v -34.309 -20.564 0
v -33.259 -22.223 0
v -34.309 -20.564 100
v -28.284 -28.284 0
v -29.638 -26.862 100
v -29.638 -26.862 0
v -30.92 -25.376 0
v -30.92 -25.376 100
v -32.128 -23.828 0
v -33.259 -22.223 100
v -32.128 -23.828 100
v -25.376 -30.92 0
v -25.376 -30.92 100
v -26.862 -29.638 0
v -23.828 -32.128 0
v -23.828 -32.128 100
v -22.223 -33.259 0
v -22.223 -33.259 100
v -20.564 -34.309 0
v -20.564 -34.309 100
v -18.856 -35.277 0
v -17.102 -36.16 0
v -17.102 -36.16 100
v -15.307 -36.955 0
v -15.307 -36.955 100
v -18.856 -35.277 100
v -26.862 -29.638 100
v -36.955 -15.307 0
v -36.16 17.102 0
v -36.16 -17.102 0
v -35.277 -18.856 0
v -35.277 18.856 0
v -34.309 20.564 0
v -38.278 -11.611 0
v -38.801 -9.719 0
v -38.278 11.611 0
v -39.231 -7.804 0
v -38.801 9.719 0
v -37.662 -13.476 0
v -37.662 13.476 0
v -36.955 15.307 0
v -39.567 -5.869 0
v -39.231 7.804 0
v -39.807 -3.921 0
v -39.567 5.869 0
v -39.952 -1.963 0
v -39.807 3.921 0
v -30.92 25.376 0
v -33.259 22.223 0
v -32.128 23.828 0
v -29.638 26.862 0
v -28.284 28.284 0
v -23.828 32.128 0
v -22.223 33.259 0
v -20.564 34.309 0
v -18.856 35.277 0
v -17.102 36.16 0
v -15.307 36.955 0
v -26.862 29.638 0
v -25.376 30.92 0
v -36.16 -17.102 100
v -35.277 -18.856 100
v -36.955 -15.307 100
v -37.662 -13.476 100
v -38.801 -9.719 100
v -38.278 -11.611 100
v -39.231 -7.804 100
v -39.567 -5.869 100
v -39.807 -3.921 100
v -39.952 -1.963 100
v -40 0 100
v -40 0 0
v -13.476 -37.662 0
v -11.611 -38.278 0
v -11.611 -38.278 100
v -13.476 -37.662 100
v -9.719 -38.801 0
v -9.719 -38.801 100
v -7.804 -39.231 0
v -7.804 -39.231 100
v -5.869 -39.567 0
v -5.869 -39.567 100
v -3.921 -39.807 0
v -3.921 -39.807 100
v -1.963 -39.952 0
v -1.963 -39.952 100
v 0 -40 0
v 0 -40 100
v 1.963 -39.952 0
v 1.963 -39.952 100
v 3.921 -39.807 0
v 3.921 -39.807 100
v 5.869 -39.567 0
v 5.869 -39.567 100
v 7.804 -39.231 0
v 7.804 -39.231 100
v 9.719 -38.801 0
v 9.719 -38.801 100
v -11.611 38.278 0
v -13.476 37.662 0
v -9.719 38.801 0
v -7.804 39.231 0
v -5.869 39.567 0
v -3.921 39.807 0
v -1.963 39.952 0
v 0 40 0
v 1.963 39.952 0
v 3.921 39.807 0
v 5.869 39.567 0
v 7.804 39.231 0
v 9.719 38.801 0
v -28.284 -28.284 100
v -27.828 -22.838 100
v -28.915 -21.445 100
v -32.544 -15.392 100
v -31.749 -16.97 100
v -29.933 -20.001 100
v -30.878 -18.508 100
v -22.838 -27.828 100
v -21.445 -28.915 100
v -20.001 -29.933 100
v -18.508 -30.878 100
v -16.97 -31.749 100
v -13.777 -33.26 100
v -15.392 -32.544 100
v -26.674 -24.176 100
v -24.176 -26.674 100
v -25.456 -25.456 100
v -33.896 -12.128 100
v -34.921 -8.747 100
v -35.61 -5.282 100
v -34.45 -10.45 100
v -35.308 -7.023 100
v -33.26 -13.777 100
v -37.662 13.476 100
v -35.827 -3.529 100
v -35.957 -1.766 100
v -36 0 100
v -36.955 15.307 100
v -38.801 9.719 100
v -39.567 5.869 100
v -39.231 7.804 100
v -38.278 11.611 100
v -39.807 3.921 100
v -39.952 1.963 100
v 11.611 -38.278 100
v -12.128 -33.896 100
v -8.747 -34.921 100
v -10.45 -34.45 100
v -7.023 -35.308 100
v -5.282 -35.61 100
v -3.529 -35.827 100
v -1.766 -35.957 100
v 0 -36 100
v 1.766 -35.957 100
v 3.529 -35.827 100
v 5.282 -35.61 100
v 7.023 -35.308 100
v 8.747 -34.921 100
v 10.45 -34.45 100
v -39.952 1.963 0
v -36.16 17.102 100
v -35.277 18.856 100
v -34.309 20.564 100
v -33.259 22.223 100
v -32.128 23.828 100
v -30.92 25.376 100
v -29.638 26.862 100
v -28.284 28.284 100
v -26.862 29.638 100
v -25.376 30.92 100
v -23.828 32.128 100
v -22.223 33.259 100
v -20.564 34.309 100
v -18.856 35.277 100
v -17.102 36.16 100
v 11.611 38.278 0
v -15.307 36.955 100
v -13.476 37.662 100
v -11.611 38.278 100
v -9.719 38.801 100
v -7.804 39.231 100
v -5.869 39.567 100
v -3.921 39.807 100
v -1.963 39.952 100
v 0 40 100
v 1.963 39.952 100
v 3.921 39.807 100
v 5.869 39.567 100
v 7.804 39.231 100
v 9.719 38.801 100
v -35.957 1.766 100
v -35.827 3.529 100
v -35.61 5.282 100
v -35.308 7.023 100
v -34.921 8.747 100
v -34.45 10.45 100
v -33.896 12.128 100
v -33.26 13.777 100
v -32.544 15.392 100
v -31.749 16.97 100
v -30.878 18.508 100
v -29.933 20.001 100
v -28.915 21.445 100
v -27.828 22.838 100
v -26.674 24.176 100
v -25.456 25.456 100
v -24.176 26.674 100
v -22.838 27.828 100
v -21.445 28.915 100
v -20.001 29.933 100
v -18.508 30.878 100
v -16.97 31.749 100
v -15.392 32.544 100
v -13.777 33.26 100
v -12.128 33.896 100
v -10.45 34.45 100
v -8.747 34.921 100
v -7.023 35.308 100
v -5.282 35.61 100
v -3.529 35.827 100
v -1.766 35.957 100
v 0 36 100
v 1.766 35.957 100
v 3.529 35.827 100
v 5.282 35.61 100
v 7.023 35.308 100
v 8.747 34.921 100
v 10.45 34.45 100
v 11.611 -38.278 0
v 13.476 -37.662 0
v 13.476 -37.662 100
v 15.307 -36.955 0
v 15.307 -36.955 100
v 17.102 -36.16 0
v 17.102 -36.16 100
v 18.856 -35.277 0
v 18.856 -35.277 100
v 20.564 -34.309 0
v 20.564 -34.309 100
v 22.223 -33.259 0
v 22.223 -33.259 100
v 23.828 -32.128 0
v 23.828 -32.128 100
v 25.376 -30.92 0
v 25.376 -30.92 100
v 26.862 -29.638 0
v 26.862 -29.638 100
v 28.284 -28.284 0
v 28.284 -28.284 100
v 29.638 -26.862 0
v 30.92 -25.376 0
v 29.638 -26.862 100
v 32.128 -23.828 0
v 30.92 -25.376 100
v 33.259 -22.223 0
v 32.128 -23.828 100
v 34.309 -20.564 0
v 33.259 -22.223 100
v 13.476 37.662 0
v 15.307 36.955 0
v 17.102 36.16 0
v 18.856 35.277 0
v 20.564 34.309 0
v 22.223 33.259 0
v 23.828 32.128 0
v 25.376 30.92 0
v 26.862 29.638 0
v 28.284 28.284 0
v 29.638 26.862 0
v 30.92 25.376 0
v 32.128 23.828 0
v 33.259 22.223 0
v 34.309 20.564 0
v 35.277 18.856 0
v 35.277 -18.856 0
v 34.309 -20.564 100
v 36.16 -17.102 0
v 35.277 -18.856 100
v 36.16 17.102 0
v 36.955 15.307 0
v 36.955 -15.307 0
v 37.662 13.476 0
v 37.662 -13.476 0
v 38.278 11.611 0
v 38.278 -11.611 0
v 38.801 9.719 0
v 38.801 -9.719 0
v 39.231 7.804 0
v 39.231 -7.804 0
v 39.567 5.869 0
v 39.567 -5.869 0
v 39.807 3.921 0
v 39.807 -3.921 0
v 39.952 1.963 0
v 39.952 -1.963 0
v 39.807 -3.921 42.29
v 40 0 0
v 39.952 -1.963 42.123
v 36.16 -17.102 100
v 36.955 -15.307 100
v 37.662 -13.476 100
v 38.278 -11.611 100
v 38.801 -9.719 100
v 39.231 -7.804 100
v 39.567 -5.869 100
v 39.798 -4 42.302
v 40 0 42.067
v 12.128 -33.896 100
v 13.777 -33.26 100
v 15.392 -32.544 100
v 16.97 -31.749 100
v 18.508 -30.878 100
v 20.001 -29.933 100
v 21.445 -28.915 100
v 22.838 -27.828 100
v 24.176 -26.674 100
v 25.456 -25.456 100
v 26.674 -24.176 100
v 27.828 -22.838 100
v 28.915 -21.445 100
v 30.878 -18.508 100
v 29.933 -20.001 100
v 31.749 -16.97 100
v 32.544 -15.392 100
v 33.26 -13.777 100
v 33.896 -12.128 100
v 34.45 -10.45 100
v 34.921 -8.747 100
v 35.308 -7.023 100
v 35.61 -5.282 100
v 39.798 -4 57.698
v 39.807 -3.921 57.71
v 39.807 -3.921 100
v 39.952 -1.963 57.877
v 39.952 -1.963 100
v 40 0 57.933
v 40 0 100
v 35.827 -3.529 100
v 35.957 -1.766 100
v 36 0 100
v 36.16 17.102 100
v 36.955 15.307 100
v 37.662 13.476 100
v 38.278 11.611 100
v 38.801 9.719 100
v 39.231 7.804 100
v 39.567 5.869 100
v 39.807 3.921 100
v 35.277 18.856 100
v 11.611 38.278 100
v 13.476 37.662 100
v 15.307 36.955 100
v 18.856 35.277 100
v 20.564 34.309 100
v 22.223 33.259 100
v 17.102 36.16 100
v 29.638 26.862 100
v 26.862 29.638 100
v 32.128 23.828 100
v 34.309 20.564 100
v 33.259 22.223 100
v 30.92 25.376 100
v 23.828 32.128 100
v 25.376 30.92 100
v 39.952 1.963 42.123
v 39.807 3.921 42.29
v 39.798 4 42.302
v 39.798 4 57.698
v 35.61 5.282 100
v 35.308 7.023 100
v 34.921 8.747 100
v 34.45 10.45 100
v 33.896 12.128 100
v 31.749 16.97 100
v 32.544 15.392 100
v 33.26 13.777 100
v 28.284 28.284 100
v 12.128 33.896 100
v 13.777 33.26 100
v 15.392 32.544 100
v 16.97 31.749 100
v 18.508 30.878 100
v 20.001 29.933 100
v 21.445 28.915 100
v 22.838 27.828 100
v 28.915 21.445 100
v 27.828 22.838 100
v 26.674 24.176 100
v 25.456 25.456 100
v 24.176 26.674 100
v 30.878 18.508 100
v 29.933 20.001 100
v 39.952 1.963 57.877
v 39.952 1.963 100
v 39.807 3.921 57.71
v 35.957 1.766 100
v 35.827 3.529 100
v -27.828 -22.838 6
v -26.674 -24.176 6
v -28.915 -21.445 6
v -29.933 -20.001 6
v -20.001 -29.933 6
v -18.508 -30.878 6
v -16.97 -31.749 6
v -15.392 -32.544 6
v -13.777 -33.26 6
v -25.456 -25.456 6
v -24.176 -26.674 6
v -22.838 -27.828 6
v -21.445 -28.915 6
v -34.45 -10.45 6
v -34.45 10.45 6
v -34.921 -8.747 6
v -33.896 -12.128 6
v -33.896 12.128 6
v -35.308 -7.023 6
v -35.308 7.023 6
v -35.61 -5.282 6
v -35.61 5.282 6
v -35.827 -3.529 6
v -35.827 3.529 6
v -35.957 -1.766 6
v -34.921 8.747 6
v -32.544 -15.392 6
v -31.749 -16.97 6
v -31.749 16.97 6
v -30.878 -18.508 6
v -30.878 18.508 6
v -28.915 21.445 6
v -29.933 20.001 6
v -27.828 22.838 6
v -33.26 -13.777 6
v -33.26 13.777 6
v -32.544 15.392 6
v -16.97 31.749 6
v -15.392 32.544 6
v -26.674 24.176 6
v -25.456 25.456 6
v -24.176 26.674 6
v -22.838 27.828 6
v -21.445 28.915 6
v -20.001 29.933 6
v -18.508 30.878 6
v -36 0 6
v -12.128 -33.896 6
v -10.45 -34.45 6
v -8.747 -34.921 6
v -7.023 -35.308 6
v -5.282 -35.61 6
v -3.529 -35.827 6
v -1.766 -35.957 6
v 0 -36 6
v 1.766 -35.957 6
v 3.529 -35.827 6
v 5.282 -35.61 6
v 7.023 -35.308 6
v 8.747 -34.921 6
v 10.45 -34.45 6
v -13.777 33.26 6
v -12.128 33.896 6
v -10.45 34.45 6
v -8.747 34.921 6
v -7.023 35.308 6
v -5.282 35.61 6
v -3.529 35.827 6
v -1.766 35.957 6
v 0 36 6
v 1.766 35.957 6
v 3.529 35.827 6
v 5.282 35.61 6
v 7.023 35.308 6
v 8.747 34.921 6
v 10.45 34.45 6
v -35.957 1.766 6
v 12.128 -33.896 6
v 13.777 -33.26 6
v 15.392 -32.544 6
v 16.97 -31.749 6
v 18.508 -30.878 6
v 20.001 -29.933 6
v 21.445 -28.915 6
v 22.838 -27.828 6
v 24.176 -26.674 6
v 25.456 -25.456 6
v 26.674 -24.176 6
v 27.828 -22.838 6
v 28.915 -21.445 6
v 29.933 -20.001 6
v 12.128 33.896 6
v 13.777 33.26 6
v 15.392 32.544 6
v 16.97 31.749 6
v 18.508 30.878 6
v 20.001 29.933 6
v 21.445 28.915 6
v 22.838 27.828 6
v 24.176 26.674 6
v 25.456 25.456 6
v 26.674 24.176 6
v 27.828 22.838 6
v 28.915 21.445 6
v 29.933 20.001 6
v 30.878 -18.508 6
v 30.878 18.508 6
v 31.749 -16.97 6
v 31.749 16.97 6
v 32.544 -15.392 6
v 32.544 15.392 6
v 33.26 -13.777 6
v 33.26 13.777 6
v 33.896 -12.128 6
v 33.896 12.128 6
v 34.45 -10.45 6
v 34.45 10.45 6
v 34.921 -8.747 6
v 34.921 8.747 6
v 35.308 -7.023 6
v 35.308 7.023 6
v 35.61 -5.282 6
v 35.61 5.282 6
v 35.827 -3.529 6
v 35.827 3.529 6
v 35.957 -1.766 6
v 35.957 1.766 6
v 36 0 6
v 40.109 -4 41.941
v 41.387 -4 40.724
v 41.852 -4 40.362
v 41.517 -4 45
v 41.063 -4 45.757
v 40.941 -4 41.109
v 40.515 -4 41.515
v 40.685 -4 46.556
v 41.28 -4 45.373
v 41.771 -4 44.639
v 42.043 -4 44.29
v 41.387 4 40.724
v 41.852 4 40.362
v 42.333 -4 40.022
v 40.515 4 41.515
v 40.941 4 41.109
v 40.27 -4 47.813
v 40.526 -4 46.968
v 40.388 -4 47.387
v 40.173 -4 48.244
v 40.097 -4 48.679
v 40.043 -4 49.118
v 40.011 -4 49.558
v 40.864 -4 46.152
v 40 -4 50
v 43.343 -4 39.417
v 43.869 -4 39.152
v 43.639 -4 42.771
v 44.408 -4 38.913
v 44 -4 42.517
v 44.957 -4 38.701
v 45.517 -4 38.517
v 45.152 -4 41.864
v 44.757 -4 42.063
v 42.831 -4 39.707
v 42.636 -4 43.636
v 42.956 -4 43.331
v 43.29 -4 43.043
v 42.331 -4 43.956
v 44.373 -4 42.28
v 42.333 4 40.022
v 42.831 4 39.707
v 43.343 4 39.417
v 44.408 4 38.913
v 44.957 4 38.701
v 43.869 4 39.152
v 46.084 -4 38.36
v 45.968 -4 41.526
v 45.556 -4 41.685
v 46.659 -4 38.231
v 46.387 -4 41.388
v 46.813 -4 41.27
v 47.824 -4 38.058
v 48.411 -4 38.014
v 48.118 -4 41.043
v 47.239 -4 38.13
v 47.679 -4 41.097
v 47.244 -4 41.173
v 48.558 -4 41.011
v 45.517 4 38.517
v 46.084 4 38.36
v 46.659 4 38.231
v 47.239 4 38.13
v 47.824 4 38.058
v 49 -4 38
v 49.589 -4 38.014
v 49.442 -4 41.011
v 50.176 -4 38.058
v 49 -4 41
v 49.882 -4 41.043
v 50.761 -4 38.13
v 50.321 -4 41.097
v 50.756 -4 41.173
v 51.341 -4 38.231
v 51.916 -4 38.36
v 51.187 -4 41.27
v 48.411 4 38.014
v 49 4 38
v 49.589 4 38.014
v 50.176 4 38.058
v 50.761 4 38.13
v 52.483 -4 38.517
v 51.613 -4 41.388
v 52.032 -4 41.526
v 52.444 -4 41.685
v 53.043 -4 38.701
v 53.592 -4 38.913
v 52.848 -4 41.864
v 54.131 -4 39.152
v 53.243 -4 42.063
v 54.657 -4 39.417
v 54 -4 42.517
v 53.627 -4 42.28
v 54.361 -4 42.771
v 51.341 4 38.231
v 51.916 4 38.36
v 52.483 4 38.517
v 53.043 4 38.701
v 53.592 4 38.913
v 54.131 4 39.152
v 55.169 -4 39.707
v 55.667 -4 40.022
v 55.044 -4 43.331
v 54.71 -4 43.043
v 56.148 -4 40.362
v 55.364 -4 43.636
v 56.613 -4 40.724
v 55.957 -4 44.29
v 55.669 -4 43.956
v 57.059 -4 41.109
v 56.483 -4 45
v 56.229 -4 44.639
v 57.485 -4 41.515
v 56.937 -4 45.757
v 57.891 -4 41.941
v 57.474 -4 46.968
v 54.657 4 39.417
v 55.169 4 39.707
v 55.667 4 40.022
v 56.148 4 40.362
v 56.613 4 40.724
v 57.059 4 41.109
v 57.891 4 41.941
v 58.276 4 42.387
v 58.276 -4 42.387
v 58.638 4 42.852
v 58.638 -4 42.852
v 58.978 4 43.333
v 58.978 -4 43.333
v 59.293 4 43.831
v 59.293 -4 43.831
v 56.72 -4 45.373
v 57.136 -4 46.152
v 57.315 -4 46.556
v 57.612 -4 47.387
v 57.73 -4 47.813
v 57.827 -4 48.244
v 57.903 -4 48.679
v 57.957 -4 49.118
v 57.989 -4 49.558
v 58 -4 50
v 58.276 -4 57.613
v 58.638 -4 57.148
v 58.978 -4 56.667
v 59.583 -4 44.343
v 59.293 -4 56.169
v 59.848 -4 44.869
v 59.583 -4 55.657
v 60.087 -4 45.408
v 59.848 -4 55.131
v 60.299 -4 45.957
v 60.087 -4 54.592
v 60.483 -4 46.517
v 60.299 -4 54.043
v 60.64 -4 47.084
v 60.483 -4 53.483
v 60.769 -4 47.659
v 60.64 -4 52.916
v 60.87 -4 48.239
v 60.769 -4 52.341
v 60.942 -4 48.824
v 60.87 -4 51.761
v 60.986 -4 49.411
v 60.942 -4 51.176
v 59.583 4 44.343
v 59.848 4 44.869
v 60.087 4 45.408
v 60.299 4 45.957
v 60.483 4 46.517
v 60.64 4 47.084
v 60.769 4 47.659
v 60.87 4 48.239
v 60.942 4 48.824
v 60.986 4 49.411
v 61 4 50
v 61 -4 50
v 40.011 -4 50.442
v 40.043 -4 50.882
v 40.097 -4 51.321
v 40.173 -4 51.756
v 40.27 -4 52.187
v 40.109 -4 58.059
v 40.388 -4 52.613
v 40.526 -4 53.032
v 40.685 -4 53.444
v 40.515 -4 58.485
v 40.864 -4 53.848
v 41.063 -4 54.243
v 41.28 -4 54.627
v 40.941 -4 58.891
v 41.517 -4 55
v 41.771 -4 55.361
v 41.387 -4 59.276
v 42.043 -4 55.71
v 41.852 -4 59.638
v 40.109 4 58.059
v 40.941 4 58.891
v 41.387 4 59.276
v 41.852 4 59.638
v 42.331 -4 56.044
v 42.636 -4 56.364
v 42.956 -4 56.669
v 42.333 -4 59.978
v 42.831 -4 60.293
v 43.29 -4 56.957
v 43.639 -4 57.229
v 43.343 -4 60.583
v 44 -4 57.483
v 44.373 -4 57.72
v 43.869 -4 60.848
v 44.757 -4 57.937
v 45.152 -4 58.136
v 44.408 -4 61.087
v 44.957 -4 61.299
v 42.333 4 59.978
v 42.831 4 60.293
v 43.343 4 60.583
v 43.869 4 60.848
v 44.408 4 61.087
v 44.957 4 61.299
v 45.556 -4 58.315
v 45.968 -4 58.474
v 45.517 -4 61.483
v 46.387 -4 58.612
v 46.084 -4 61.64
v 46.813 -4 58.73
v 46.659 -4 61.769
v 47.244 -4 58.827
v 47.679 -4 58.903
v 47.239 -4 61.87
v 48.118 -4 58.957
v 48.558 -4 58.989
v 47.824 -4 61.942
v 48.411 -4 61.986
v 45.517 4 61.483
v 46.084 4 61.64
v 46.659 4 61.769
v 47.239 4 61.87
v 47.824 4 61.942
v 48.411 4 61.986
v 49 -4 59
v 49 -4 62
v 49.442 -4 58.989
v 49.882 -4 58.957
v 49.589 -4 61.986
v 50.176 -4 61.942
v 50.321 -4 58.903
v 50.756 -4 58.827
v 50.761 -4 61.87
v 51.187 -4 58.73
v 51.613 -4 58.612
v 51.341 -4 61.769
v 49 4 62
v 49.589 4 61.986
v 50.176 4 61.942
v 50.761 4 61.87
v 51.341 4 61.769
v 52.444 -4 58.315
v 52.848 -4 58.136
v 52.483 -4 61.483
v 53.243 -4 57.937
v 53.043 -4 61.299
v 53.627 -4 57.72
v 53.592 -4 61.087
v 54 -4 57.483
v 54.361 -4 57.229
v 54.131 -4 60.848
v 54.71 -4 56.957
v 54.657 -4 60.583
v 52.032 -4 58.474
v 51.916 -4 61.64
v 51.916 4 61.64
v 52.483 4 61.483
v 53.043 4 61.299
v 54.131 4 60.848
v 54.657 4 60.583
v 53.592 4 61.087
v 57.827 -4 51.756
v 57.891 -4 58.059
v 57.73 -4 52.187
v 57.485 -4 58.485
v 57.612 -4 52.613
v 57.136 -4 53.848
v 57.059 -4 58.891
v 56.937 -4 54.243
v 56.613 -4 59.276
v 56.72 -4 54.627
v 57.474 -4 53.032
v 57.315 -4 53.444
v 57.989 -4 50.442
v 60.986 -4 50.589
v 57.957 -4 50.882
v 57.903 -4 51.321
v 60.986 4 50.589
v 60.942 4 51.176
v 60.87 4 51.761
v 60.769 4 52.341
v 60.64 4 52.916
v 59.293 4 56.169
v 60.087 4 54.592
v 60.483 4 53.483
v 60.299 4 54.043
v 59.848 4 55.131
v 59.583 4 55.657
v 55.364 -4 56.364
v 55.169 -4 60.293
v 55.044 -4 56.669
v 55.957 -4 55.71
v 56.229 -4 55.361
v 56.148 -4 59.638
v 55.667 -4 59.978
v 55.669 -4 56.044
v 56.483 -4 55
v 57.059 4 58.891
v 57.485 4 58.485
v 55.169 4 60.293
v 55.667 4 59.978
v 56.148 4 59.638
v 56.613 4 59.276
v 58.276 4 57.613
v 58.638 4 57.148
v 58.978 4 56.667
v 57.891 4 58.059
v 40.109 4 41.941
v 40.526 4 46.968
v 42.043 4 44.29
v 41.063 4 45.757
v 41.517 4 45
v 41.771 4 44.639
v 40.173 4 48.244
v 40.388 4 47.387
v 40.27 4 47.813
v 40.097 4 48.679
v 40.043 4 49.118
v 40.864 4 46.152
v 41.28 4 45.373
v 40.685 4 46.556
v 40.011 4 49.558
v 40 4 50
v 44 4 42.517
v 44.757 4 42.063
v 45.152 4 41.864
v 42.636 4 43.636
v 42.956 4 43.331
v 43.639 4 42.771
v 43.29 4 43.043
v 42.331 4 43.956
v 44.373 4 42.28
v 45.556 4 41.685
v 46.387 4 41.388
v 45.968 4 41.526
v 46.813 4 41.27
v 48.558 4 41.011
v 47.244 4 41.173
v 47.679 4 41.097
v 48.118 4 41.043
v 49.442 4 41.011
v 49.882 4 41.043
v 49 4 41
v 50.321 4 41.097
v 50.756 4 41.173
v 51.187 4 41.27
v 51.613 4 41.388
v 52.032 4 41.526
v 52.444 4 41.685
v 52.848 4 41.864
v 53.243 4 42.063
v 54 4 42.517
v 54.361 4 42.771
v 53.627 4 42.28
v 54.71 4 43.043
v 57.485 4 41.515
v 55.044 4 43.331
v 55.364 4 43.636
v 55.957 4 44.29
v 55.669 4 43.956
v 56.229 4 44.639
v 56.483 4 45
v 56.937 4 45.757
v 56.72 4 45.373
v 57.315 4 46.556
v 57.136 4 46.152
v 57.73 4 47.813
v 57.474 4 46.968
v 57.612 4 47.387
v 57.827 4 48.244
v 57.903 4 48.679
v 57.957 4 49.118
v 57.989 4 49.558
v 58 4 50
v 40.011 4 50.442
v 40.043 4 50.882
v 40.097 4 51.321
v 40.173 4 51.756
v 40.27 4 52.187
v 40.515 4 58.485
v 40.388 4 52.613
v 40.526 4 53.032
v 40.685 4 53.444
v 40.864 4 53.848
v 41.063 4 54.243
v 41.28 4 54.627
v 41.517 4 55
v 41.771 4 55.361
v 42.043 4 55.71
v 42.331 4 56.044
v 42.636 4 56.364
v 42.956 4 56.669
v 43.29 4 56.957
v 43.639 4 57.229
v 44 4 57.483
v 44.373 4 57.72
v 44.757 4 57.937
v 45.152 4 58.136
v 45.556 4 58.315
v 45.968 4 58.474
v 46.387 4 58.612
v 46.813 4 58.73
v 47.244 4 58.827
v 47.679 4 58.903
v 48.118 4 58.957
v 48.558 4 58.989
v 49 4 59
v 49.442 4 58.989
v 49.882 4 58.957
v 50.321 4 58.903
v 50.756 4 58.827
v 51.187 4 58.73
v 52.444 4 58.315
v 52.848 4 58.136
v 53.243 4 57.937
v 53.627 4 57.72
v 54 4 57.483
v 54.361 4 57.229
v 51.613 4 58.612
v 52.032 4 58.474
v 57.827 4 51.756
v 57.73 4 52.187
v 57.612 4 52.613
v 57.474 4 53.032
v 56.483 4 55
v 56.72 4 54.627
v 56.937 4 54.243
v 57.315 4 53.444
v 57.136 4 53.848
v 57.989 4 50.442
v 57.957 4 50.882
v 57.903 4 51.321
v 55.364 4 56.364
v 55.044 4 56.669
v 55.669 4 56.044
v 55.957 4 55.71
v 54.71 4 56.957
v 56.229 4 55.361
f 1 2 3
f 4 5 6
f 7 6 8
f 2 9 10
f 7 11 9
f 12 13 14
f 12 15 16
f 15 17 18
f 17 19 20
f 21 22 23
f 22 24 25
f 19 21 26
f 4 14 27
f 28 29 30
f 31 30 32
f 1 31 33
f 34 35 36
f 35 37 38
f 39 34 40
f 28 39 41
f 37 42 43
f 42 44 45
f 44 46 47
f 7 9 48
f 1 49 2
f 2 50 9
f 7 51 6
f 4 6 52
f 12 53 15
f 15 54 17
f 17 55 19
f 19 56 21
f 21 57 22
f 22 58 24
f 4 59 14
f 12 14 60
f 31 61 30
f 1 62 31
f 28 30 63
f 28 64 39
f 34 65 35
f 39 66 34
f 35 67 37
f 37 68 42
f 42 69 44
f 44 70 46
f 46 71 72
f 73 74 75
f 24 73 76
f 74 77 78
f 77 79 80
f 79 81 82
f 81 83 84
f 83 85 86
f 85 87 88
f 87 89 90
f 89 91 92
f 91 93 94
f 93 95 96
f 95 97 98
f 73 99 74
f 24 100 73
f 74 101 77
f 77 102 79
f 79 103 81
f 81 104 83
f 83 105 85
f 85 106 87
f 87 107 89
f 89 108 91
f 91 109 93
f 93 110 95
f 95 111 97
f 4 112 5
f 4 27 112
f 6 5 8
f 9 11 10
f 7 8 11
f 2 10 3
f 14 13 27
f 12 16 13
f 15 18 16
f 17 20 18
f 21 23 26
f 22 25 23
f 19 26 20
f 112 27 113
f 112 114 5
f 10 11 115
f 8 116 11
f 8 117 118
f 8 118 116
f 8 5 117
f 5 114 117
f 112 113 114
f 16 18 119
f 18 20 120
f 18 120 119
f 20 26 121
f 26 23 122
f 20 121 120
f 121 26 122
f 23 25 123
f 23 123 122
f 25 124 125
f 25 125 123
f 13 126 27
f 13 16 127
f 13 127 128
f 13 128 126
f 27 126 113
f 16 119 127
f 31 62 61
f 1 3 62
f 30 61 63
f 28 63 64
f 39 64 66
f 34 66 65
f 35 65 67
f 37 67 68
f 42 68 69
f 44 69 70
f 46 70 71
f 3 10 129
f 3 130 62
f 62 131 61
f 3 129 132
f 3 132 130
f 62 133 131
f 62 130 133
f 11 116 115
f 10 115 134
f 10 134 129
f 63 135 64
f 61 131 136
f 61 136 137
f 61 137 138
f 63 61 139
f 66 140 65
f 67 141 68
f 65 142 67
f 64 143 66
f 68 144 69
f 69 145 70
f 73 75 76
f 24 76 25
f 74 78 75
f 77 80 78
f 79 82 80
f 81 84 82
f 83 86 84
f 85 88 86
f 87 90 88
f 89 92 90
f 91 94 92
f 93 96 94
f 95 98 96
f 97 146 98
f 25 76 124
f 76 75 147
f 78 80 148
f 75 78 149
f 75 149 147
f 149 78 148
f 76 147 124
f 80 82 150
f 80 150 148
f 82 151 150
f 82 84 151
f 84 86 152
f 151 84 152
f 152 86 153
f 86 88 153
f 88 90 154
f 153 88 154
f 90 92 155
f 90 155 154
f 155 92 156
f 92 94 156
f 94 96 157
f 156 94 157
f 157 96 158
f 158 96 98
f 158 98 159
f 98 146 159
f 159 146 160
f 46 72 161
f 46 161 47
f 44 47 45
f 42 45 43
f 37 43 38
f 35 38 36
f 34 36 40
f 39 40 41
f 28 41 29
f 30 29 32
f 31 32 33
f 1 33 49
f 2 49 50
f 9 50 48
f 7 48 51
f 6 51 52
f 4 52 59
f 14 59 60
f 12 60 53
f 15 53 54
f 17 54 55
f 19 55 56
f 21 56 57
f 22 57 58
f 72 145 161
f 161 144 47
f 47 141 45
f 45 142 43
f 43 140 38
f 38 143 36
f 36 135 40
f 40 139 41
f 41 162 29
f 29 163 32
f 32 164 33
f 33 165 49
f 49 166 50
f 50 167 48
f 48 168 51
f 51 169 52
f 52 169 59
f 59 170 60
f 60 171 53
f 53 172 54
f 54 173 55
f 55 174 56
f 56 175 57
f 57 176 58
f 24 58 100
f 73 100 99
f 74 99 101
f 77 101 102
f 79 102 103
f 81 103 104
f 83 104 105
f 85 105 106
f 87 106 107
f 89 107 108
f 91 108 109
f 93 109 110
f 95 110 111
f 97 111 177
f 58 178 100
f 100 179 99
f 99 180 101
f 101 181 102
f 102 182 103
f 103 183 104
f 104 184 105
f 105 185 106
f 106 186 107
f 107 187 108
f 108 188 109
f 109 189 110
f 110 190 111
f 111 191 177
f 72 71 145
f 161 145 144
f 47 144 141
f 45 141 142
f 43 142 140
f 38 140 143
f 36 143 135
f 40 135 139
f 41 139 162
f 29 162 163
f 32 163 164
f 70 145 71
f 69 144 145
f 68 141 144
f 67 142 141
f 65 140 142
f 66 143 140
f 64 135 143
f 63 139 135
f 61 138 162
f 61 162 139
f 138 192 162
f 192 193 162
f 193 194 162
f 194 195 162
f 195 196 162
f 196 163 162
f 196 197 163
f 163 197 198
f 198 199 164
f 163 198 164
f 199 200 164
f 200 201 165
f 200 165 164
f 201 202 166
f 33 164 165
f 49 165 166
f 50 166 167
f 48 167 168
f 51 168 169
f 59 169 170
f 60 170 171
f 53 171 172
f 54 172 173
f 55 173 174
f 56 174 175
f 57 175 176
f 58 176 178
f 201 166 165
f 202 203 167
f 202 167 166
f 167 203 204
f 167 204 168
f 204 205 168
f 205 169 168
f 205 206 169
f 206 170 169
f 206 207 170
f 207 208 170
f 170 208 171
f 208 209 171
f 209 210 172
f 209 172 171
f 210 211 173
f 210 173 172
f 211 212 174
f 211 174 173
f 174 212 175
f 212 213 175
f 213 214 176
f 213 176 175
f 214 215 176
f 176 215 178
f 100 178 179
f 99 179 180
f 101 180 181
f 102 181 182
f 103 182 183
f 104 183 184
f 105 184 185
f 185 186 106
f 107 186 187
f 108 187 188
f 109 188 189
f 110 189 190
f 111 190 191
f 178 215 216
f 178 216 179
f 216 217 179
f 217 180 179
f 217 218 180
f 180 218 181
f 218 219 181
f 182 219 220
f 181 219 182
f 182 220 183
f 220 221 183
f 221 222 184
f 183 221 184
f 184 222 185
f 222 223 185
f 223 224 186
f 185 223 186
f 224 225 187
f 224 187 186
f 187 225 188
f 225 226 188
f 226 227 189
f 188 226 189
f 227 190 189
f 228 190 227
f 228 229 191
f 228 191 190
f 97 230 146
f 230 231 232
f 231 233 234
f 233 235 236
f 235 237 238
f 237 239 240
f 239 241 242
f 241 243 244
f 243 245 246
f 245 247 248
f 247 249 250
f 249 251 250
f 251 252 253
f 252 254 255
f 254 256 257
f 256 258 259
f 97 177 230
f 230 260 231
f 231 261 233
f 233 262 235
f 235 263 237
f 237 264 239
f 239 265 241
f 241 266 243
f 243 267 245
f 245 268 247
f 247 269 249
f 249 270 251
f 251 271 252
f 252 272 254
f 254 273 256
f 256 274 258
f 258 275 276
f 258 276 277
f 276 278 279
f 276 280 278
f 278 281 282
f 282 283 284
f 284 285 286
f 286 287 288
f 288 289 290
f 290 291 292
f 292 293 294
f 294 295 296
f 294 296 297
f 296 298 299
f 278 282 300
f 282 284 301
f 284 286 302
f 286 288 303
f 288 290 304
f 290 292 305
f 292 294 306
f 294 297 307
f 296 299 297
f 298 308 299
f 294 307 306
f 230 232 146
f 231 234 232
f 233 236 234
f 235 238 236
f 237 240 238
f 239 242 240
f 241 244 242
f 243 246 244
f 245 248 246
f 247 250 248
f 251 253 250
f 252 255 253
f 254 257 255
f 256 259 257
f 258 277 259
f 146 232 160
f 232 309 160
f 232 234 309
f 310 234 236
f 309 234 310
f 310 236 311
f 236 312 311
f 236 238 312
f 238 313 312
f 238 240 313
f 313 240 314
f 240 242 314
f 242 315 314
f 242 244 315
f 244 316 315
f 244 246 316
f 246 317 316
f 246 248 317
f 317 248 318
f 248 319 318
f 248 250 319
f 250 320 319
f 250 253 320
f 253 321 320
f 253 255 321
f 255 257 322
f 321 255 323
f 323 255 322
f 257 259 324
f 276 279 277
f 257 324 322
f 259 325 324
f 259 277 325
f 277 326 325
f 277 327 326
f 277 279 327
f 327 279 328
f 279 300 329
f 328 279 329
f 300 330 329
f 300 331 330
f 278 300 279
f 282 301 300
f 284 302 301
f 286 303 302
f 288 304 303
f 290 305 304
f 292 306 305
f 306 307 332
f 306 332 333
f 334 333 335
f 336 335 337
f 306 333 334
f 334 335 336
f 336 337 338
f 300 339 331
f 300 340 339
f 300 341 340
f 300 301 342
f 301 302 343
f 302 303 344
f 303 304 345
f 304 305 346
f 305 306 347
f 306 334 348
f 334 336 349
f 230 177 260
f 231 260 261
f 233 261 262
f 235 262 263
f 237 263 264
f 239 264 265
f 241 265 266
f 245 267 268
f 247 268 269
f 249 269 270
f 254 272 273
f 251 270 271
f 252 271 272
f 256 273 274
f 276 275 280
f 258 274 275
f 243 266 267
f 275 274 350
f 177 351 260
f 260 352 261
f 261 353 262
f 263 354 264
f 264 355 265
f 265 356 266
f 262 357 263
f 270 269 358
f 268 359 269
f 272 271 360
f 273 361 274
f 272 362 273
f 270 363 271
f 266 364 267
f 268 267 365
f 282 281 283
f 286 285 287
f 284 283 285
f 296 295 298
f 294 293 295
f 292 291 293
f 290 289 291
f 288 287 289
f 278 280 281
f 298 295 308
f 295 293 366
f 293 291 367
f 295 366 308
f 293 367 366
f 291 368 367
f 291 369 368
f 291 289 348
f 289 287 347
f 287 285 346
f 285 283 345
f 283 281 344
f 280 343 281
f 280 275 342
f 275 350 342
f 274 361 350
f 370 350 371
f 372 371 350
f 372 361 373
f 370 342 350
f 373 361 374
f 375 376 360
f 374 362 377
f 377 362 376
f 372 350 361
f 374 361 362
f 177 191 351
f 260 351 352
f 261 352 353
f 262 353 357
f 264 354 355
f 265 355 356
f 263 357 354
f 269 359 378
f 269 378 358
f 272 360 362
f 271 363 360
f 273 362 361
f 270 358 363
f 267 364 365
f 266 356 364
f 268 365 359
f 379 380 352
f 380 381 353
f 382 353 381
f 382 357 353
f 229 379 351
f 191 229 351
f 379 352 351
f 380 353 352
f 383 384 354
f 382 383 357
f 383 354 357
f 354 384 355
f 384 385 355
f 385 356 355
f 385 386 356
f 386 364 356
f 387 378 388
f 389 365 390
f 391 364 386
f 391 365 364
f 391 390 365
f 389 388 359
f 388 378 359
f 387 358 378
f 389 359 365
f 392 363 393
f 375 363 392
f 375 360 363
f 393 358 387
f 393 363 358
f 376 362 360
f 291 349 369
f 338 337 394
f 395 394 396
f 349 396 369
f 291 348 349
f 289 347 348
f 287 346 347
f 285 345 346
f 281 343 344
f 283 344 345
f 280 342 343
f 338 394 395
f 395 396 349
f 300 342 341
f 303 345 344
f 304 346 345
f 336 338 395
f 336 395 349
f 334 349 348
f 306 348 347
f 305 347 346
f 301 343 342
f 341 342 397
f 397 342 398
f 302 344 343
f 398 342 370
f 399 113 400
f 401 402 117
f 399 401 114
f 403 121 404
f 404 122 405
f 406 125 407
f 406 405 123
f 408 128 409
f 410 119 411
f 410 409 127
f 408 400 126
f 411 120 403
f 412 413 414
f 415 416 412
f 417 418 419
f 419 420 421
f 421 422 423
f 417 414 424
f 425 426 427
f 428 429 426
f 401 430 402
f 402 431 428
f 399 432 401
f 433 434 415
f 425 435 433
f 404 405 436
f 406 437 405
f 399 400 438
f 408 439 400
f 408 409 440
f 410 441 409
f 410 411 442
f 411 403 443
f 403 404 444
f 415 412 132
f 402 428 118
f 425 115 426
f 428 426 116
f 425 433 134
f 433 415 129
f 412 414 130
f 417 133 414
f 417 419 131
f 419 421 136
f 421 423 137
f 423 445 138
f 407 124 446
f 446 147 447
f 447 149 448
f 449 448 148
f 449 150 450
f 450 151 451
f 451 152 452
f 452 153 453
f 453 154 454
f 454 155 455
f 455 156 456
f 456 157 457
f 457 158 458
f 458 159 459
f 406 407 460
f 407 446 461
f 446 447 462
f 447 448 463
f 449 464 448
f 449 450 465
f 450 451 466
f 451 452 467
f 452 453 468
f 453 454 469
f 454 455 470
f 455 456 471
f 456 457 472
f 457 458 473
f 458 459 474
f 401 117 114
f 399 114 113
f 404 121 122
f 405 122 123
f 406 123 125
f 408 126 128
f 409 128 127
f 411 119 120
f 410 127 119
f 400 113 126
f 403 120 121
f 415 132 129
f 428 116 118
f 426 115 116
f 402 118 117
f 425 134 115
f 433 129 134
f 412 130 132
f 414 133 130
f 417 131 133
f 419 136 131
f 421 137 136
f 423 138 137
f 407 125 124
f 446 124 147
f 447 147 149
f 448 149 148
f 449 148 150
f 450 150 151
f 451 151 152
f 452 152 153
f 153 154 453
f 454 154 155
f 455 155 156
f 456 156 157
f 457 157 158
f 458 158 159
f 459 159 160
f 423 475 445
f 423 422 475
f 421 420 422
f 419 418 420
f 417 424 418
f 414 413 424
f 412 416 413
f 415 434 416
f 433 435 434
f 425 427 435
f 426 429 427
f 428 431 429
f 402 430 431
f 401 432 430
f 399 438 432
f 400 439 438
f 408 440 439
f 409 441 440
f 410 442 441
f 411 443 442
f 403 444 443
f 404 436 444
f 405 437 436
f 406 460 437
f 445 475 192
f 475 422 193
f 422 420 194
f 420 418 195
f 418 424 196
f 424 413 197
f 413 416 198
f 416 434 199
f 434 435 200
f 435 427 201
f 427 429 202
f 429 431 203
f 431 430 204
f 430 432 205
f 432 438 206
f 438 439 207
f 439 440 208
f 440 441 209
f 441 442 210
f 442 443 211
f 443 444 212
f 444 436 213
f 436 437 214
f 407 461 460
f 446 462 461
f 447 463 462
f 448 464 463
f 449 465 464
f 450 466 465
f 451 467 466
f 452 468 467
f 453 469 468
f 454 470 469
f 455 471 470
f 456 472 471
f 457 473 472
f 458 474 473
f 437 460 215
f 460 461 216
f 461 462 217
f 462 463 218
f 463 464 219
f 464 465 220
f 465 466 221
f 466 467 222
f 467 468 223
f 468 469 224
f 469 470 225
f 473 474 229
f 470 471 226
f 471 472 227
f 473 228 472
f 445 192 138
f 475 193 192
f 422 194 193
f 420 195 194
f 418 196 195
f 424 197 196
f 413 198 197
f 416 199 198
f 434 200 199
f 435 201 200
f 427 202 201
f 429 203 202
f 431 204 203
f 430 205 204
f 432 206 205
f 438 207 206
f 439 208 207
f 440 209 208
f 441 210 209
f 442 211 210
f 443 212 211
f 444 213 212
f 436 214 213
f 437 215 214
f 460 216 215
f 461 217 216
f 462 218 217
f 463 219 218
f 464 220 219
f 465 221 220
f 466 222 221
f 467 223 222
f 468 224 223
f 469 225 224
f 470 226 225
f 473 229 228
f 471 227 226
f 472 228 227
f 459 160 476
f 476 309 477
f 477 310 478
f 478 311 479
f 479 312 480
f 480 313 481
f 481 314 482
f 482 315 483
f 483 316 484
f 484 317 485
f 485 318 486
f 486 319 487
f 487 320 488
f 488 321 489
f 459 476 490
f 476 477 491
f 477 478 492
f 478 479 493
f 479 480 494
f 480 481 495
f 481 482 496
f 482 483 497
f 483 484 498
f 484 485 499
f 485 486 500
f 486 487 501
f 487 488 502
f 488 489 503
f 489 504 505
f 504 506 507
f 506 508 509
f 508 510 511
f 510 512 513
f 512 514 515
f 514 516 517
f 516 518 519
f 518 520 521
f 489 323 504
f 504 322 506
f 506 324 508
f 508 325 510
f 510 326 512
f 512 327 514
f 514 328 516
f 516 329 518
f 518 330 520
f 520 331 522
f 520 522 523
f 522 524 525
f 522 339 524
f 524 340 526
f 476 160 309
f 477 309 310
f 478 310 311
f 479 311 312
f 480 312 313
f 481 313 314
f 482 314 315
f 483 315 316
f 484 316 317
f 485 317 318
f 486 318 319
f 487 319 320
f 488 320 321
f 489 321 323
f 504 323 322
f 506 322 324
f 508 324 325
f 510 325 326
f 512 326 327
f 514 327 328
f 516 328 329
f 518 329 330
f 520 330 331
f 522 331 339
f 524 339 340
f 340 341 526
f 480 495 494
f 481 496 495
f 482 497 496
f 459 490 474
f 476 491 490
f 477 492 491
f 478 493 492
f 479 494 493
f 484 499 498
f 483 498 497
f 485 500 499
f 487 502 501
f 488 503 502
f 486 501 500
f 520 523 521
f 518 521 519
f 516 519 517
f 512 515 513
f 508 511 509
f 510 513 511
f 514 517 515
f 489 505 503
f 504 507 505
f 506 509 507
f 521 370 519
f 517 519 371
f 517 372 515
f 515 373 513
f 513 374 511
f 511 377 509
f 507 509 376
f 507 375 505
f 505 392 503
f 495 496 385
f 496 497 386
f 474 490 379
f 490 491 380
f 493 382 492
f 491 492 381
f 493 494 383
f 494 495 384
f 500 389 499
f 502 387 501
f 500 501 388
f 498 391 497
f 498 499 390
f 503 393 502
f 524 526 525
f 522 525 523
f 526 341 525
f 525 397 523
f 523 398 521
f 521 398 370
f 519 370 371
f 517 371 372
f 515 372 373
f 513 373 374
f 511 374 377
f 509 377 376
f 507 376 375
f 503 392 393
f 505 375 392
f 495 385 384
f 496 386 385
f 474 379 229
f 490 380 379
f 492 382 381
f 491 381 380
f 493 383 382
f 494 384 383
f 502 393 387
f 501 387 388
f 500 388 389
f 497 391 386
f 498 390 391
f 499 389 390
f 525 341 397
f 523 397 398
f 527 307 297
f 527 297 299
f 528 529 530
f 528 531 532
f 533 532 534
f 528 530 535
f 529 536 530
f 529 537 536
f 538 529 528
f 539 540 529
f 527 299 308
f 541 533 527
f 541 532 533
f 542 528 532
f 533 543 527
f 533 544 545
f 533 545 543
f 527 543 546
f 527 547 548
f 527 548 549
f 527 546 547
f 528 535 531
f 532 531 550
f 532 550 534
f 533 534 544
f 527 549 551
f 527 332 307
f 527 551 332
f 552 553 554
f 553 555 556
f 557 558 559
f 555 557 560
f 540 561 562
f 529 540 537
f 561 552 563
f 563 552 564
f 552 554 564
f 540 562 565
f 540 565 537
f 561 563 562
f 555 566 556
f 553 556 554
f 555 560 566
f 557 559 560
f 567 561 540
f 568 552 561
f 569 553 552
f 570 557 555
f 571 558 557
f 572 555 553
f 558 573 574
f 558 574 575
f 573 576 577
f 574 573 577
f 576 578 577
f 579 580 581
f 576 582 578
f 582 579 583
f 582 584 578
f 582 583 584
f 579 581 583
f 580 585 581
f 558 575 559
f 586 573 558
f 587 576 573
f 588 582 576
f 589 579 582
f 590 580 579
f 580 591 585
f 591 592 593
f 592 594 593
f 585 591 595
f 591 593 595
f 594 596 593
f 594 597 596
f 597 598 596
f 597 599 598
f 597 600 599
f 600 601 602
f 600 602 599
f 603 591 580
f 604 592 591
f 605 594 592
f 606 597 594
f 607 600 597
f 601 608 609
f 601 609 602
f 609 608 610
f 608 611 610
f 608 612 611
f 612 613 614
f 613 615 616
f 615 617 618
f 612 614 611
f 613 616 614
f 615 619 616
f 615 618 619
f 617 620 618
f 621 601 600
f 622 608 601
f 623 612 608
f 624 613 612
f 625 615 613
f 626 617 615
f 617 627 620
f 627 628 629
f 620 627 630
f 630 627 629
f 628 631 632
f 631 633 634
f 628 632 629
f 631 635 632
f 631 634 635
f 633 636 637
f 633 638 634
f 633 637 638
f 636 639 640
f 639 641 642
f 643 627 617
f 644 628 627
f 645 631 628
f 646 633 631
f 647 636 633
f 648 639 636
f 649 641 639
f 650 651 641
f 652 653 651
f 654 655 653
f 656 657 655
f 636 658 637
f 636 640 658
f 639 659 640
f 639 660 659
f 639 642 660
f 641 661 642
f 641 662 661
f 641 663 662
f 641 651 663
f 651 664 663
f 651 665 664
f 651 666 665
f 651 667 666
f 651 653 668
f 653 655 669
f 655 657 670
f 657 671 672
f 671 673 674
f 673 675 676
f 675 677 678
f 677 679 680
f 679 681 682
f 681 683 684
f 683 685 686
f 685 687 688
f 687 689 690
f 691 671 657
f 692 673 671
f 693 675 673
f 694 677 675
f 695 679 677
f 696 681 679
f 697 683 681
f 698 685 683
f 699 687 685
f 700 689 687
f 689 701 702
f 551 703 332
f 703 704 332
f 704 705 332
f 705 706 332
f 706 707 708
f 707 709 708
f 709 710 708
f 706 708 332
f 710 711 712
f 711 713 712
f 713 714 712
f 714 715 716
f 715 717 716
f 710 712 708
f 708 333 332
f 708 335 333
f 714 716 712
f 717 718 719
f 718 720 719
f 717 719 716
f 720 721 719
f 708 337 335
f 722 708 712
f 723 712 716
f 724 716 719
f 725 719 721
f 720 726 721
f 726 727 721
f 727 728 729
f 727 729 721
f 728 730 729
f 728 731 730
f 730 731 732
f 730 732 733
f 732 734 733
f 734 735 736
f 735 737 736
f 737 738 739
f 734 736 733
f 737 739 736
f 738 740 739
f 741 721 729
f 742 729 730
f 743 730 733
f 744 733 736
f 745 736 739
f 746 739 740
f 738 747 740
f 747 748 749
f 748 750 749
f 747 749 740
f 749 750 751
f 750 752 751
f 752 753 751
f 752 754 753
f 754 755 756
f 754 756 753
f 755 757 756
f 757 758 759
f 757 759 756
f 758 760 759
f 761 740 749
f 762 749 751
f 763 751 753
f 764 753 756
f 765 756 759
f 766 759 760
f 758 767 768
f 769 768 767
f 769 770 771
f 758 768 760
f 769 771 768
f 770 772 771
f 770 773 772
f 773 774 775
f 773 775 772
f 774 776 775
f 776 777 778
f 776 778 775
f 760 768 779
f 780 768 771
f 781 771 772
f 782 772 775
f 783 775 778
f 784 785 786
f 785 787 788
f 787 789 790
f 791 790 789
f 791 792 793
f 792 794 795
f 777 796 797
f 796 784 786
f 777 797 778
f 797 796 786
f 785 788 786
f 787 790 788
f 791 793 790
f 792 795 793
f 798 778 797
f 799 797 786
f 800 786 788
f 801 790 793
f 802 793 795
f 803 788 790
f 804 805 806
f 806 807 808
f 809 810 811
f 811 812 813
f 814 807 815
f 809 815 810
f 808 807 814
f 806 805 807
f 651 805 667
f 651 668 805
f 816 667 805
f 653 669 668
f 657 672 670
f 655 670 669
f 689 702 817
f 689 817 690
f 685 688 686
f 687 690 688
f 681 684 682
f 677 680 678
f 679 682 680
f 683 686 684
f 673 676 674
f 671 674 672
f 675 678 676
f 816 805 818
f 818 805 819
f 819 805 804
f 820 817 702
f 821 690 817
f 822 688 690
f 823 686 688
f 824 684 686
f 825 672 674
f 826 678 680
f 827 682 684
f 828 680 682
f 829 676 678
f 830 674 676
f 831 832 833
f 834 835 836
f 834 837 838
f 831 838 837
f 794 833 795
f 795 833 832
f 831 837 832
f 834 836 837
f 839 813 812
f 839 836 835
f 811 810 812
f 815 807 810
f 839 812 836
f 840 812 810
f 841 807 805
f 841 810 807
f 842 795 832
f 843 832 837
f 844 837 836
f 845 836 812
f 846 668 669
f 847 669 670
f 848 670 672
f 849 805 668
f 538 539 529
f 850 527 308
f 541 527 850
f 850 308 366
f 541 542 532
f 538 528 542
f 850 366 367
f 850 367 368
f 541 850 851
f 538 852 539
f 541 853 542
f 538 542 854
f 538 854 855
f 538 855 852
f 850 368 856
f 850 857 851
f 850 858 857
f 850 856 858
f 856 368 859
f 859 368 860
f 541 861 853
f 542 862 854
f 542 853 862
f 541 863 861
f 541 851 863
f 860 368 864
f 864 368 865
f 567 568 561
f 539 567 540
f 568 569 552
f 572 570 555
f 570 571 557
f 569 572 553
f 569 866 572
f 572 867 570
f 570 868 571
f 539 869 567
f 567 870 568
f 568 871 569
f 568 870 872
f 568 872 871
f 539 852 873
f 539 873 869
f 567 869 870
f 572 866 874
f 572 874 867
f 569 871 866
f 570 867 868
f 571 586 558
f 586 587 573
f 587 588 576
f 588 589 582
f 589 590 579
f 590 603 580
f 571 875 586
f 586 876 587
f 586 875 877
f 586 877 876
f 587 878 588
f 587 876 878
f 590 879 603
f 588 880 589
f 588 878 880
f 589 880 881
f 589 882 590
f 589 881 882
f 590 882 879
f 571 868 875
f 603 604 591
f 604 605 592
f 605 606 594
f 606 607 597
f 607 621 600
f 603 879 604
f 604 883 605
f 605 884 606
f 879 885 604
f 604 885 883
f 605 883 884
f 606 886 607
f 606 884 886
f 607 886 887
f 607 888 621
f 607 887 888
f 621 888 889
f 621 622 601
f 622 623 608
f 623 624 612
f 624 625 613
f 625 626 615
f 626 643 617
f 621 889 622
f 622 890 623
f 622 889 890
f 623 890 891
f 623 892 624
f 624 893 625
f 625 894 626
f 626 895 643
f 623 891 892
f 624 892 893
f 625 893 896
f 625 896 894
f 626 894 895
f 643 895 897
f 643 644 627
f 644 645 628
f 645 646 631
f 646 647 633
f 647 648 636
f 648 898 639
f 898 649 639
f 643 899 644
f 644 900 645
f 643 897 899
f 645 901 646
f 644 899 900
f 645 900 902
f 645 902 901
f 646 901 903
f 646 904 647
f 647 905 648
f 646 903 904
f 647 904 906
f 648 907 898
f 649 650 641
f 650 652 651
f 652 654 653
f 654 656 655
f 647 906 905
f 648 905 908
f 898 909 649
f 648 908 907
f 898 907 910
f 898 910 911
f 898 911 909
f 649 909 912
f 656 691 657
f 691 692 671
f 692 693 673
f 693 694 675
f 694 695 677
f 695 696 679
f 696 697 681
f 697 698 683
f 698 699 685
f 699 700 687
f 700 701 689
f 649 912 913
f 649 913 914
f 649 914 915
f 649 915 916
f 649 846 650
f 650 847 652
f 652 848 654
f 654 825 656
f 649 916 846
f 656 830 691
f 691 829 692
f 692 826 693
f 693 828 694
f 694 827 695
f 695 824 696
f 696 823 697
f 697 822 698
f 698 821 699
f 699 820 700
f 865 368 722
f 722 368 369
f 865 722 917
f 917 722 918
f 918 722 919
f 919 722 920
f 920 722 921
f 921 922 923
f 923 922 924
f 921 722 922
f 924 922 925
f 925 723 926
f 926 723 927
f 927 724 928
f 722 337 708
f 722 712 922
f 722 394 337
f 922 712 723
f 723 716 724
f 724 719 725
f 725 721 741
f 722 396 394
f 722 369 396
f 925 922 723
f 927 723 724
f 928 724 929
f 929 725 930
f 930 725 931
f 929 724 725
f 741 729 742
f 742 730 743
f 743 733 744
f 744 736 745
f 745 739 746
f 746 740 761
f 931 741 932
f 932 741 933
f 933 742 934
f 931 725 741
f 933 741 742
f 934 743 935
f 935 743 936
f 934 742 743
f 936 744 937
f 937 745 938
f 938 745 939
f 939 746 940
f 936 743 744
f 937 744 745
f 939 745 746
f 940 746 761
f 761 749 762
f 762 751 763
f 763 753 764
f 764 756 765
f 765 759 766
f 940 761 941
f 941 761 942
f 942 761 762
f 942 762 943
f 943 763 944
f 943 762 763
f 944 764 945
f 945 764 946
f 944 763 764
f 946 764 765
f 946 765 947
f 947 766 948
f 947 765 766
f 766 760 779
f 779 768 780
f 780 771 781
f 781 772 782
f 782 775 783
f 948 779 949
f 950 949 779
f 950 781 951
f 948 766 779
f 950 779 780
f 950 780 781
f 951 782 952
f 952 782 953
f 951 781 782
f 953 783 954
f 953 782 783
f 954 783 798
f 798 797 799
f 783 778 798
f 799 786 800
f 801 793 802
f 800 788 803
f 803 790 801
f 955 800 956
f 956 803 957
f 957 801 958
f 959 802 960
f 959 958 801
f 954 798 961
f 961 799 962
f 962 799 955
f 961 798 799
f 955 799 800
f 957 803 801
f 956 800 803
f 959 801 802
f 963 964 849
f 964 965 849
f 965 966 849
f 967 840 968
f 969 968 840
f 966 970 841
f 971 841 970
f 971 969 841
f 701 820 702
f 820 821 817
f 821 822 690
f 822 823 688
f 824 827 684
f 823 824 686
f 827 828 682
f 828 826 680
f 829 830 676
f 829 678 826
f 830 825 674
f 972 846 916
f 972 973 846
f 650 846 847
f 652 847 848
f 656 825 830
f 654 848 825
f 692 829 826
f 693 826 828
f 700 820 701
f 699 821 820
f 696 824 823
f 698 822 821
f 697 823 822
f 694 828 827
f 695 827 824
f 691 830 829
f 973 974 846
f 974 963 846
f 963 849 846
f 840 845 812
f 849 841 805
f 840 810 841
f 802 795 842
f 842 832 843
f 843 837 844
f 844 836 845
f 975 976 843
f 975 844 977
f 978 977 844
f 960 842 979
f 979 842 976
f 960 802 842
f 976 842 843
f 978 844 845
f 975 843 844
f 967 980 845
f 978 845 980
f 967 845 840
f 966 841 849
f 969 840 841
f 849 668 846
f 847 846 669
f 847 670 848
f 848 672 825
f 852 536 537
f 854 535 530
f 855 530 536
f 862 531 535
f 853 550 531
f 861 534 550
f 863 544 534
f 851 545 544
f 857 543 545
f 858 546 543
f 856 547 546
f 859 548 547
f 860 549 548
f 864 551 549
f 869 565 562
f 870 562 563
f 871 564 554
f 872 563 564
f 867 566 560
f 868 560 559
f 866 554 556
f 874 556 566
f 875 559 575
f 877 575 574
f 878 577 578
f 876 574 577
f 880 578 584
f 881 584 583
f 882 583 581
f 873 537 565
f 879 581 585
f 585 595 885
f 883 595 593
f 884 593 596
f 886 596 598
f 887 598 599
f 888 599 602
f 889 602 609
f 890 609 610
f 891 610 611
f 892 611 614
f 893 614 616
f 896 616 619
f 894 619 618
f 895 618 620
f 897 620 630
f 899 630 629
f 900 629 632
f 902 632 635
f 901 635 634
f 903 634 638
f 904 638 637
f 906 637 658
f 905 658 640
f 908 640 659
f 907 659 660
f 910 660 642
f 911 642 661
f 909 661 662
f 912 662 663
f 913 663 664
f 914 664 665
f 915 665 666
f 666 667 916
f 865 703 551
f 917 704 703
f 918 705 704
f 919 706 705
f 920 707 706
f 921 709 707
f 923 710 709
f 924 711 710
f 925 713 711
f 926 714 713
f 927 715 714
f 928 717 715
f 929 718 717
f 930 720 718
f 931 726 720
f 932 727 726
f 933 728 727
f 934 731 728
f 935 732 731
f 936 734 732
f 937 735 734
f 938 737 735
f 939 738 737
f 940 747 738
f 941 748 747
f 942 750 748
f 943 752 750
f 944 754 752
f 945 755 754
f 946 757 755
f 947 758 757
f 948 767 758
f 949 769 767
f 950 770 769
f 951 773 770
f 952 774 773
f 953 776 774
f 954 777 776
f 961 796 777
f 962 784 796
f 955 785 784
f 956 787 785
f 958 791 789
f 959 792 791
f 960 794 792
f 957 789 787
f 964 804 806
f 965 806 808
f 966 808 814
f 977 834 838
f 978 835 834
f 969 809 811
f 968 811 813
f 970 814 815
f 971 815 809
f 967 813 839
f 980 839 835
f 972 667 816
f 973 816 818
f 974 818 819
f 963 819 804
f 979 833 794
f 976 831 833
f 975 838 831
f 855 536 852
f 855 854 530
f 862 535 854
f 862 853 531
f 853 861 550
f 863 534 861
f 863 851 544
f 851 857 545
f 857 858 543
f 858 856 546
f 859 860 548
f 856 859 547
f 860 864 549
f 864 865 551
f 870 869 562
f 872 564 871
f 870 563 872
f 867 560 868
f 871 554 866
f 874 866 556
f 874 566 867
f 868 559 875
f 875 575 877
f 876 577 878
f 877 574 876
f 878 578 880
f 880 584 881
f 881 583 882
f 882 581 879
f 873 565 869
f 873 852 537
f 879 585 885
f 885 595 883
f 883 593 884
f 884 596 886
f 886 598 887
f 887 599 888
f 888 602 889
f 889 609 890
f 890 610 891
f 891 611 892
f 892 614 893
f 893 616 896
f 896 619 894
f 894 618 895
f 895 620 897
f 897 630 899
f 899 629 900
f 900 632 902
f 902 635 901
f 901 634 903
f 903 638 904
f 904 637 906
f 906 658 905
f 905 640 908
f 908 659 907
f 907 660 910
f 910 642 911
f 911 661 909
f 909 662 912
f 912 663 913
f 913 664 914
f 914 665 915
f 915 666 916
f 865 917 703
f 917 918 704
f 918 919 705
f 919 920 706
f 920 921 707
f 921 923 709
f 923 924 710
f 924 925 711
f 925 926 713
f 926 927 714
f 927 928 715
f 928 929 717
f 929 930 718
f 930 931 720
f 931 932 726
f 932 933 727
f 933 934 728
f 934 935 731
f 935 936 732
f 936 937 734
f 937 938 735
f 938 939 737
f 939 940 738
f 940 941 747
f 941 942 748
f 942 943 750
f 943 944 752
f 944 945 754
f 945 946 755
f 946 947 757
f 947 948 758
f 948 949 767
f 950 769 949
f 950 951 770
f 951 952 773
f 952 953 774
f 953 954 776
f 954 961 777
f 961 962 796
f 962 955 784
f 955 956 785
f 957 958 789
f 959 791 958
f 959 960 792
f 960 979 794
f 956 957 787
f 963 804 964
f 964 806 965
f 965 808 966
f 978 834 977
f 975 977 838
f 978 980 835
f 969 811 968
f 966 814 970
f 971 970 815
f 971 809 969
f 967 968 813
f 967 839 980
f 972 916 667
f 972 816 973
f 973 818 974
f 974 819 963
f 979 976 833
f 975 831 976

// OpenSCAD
$fn = 128;

outer_diameter = 80;
cup_height = 100;
wall_thickness = 4;
bottom_thickness = 6;

handle_outer_radius = 12;
handle_inner_radius = 9;
handle_depth = 8;
handle_overlap = 3;

outer_radius = outer_diameter / 2;
inner_radius = outer_radius - wall_thickness;

handle_center_x =
    outer_radius + handle_outer_radius - handle_overlap;
handle_center_z = cup_height / 2;

union() {
    // 上面を開口し、底面を6mm残したカップ本体
    difference() {
        cylinder(h = cup_height, r = outer_radius);

        translate([0, 0, bottom_thickness])
            cylinder(
                h = cup_height - bottom_thickness + 1,
                r = inner_radius
            );
    }

    // XZ平面に配置したリング状の取手
    translate([handle_center_x, 0, handle_center_z])
        rotate([90, 0, 0])
            difference() {
                cylinder(
                    h = handle_depth,
                    r = handle_outer_radius,
                    center = true
                );

                cylinder(
                    h = handle_depth + 2,
                    r = handle_inner_radius,
                    center = true
                );
            }
}
